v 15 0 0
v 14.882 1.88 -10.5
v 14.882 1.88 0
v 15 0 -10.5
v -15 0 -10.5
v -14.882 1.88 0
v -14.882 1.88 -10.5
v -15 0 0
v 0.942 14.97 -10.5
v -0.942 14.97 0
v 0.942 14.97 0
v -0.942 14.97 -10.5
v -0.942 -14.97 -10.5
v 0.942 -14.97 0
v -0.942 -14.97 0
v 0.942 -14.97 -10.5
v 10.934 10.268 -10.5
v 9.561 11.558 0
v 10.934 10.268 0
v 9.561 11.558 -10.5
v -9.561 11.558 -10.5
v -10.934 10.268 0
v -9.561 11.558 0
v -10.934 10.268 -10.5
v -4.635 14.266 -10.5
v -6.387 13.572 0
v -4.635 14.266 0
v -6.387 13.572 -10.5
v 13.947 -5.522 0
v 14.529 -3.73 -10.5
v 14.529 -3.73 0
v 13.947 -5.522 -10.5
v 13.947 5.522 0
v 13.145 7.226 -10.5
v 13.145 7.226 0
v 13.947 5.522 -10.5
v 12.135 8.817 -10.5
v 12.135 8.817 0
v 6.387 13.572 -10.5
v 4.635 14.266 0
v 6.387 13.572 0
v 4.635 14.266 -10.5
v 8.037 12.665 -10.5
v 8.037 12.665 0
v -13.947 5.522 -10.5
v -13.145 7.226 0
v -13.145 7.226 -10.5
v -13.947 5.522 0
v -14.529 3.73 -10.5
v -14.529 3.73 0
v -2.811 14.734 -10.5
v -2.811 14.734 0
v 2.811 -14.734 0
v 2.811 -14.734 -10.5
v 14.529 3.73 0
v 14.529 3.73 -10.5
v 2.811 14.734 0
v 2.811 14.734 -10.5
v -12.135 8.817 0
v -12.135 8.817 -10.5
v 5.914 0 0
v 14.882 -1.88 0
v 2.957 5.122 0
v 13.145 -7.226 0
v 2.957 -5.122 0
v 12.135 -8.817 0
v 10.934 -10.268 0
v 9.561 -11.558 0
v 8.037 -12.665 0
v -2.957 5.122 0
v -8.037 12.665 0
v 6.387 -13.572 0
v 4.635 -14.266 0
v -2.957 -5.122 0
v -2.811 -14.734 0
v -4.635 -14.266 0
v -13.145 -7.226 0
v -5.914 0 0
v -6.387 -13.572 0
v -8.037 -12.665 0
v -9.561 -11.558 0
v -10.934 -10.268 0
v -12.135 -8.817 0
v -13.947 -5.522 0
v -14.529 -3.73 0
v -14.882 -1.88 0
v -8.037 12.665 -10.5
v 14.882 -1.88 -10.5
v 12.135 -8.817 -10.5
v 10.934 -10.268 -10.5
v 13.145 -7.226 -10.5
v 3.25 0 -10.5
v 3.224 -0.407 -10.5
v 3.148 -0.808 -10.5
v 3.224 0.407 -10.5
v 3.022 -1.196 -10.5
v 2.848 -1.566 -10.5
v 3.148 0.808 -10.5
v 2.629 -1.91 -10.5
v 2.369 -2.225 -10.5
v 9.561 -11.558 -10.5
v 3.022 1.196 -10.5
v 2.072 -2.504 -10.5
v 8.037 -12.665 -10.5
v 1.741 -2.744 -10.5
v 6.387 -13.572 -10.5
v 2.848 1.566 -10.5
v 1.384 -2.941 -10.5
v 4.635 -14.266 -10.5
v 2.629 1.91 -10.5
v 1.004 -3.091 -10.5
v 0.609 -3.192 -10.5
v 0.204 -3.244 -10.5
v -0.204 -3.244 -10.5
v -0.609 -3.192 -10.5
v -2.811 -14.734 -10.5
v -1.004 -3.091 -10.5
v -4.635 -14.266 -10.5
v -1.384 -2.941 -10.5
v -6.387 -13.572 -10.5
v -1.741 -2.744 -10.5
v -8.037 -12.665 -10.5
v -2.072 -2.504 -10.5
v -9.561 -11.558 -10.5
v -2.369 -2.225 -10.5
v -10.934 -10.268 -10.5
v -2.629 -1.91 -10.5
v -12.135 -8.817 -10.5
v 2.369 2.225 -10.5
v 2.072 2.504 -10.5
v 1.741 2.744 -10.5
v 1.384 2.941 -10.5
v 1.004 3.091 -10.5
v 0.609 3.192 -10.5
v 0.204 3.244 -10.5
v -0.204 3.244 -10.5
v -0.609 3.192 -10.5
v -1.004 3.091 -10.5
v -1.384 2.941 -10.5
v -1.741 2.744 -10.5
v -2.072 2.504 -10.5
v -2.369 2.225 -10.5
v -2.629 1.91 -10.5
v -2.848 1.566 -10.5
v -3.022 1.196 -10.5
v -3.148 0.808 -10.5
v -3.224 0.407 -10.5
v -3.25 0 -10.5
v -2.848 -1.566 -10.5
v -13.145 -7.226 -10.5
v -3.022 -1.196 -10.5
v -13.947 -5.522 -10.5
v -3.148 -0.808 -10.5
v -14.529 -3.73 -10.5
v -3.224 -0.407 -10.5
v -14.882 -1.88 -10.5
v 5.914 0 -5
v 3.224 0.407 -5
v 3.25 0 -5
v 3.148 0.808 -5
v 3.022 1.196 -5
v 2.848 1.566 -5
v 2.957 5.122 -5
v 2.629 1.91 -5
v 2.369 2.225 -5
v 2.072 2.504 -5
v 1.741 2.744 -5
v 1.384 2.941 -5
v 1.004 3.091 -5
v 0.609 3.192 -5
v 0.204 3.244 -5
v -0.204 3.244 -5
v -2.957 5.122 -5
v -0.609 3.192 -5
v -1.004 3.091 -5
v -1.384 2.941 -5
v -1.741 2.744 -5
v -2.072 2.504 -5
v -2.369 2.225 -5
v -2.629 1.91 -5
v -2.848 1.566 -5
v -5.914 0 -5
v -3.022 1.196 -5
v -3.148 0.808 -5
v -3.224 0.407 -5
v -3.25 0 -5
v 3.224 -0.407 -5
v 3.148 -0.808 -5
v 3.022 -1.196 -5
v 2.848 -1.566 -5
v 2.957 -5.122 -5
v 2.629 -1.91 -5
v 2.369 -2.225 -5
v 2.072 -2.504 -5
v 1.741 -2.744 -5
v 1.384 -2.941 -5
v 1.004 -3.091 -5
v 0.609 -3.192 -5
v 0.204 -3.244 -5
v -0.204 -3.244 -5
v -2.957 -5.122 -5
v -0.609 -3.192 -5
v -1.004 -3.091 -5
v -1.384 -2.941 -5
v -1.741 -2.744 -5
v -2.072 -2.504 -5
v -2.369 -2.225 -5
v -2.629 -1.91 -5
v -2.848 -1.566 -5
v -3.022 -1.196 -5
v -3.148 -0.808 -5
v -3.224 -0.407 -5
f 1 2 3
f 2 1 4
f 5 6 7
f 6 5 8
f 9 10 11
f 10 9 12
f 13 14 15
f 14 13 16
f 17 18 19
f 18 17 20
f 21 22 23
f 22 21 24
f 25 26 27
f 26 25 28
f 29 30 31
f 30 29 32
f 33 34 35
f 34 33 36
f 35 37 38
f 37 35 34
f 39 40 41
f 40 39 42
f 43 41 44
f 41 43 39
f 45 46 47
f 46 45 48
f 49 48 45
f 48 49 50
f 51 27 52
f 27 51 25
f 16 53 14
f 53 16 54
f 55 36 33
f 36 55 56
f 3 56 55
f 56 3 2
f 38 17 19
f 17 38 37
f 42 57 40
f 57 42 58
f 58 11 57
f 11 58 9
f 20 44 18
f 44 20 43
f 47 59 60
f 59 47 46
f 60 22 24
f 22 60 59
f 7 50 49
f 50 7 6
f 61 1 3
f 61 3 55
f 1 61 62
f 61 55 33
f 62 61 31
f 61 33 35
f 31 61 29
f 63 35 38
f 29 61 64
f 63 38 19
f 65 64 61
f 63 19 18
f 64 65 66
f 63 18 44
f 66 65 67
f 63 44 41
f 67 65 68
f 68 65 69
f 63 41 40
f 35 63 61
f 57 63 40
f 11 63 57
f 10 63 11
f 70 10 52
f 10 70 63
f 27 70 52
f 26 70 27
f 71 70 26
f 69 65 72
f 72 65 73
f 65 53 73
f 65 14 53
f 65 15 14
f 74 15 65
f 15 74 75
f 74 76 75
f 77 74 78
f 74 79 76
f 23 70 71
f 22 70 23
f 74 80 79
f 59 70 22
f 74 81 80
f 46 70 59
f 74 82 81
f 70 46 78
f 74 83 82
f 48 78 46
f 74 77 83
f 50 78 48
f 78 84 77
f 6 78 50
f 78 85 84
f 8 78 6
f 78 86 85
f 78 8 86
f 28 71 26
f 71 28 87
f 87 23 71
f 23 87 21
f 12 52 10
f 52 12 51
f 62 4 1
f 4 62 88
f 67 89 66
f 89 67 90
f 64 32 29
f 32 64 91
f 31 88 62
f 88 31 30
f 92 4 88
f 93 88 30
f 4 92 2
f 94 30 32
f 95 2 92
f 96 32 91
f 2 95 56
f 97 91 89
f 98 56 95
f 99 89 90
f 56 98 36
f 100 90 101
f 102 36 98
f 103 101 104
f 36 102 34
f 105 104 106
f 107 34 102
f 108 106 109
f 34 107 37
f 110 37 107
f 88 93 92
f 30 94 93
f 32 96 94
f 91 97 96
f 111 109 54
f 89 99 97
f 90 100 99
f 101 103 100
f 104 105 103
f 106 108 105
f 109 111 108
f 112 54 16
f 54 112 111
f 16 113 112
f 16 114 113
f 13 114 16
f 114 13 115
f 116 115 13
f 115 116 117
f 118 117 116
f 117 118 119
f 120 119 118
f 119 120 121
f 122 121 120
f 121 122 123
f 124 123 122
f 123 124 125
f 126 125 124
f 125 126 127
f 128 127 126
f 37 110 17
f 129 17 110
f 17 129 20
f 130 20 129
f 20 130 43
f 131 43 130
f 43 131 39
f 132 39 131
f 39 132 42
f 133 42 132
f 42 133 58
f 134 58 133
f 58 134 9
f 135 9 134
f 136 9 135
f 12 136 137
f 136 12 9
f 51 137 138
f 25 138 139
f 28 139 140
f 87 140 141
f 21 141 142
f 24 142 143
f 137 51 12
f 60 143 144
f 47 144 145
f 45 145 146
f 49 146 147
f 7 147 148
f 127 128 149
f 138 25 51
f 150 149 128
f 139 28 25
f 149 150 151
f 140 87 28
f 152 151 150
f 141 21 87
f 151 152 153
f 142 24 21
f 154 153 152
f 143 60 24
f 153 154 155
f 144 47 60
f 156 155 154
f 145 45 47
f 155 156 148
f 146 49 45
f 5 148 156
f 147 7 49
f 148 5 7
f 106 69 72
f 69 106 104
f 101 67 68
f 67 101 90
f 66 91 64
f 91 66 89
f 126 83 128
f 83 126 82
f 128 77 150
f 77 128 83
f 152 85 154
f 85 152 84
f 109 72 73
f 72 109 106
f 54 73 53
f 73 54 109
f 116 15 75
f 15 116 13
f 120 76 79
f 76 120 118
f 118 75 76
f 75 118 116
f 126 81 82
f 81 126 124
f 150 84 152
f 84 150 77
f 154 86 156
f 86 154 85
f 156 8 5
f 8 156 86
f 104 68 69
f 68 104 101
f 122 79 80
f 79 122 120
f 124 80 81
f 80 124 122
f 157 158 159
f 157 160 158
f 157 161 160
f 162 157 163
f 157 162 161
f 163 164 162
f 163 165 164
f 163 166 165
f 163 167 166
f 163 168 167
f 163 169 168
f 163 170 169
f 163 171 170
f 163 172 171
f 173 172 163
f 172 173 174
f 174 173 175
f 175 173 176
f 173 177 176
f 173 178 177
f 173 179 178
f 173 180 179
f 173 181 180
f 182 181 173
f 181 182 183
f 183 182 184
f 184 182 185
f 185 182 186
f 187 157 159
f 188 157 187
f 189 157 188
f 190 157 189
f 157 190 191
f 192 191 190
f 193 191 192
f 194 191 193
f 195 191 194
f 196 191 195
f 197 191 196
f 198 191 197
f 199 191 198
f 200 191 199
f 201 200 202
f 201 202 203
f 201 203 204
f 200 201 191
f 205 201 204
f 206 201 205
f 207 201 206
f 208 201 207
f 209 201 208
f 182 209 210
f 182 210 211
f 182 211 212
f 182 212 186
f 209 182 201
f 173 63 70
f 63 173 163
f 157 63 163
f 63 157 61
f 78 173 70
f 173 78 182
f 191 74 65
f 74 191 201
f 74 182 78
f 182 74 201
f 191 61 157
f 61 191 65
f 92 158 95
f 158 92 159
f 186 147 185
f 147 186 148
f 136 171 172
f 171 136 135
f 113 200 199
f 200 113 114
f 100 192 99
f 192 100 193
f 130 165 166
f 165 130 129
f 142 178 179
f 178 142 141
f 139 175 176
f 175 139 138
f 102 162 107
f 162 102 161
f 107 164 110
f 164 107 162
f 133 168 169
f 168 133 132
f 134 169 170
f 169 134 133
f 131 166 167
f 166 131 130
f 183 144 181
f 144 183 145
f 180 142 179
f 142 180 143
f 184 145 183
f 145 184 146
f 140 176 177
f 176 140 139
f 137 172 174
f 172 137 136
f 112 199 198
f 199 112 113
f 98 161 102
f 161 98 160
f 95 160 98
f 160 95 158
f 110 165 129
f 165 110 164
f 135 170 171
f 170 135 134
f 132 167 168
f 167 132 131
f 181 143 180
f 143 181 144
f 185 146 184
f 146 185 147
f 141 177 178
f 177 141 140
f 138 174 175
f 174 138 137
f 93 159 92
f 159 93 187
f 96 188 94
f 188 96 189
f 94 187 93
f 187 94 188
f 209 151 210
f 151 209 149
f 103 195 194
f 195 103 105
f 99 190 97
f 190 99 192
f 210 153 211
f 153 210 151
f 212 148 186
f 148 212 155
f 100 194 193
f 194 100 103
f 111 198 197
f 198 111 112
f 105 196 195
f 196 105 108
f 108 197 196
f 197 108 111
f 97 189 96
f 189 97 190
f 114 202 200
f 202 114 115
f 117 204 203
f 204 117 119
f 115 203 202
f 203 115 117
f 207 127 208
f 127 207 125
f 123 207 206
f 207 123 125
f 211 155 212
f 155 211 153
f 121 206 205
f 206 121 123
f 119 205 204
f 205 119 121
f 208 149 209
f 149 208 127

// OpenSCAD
$fn = 50;


difference() {
	union() {
		translate(v = [0, 0, -10.5000000000]) {
			cylinder(h = 10.5000000000, r = 15.0000000000);
		}
		translate(v = [0, 0, -12.0000000000]) {
			cylinder(h = 12, r = 2.8750000000);
		}
	}
	union() {
		translate(v = [0, 0, 0]) {
			rotate(a = [0, 0, 0]) {
				difference() {
					union() {
						translate(v = [0, 0, -5]) {
							linear_extrude(height = 5) {
								polygon(points = [[5.9142500000, 0.0000000000], [2.9571250000, 5.1218907443], [-2.9571250000, 5.1218907443], [-5.9142500000, 0.0000000000], [-2.9571250000, -5.1218907443], [2.9571250000, -5.1218907443]]);
							}
						}
					}
					union();
				}
			}
		}
		#translate(v = [0, 0, -100.0000000000]) {
			cylinder(h = 200, r = 3.2500000000);
		}
	}
}
